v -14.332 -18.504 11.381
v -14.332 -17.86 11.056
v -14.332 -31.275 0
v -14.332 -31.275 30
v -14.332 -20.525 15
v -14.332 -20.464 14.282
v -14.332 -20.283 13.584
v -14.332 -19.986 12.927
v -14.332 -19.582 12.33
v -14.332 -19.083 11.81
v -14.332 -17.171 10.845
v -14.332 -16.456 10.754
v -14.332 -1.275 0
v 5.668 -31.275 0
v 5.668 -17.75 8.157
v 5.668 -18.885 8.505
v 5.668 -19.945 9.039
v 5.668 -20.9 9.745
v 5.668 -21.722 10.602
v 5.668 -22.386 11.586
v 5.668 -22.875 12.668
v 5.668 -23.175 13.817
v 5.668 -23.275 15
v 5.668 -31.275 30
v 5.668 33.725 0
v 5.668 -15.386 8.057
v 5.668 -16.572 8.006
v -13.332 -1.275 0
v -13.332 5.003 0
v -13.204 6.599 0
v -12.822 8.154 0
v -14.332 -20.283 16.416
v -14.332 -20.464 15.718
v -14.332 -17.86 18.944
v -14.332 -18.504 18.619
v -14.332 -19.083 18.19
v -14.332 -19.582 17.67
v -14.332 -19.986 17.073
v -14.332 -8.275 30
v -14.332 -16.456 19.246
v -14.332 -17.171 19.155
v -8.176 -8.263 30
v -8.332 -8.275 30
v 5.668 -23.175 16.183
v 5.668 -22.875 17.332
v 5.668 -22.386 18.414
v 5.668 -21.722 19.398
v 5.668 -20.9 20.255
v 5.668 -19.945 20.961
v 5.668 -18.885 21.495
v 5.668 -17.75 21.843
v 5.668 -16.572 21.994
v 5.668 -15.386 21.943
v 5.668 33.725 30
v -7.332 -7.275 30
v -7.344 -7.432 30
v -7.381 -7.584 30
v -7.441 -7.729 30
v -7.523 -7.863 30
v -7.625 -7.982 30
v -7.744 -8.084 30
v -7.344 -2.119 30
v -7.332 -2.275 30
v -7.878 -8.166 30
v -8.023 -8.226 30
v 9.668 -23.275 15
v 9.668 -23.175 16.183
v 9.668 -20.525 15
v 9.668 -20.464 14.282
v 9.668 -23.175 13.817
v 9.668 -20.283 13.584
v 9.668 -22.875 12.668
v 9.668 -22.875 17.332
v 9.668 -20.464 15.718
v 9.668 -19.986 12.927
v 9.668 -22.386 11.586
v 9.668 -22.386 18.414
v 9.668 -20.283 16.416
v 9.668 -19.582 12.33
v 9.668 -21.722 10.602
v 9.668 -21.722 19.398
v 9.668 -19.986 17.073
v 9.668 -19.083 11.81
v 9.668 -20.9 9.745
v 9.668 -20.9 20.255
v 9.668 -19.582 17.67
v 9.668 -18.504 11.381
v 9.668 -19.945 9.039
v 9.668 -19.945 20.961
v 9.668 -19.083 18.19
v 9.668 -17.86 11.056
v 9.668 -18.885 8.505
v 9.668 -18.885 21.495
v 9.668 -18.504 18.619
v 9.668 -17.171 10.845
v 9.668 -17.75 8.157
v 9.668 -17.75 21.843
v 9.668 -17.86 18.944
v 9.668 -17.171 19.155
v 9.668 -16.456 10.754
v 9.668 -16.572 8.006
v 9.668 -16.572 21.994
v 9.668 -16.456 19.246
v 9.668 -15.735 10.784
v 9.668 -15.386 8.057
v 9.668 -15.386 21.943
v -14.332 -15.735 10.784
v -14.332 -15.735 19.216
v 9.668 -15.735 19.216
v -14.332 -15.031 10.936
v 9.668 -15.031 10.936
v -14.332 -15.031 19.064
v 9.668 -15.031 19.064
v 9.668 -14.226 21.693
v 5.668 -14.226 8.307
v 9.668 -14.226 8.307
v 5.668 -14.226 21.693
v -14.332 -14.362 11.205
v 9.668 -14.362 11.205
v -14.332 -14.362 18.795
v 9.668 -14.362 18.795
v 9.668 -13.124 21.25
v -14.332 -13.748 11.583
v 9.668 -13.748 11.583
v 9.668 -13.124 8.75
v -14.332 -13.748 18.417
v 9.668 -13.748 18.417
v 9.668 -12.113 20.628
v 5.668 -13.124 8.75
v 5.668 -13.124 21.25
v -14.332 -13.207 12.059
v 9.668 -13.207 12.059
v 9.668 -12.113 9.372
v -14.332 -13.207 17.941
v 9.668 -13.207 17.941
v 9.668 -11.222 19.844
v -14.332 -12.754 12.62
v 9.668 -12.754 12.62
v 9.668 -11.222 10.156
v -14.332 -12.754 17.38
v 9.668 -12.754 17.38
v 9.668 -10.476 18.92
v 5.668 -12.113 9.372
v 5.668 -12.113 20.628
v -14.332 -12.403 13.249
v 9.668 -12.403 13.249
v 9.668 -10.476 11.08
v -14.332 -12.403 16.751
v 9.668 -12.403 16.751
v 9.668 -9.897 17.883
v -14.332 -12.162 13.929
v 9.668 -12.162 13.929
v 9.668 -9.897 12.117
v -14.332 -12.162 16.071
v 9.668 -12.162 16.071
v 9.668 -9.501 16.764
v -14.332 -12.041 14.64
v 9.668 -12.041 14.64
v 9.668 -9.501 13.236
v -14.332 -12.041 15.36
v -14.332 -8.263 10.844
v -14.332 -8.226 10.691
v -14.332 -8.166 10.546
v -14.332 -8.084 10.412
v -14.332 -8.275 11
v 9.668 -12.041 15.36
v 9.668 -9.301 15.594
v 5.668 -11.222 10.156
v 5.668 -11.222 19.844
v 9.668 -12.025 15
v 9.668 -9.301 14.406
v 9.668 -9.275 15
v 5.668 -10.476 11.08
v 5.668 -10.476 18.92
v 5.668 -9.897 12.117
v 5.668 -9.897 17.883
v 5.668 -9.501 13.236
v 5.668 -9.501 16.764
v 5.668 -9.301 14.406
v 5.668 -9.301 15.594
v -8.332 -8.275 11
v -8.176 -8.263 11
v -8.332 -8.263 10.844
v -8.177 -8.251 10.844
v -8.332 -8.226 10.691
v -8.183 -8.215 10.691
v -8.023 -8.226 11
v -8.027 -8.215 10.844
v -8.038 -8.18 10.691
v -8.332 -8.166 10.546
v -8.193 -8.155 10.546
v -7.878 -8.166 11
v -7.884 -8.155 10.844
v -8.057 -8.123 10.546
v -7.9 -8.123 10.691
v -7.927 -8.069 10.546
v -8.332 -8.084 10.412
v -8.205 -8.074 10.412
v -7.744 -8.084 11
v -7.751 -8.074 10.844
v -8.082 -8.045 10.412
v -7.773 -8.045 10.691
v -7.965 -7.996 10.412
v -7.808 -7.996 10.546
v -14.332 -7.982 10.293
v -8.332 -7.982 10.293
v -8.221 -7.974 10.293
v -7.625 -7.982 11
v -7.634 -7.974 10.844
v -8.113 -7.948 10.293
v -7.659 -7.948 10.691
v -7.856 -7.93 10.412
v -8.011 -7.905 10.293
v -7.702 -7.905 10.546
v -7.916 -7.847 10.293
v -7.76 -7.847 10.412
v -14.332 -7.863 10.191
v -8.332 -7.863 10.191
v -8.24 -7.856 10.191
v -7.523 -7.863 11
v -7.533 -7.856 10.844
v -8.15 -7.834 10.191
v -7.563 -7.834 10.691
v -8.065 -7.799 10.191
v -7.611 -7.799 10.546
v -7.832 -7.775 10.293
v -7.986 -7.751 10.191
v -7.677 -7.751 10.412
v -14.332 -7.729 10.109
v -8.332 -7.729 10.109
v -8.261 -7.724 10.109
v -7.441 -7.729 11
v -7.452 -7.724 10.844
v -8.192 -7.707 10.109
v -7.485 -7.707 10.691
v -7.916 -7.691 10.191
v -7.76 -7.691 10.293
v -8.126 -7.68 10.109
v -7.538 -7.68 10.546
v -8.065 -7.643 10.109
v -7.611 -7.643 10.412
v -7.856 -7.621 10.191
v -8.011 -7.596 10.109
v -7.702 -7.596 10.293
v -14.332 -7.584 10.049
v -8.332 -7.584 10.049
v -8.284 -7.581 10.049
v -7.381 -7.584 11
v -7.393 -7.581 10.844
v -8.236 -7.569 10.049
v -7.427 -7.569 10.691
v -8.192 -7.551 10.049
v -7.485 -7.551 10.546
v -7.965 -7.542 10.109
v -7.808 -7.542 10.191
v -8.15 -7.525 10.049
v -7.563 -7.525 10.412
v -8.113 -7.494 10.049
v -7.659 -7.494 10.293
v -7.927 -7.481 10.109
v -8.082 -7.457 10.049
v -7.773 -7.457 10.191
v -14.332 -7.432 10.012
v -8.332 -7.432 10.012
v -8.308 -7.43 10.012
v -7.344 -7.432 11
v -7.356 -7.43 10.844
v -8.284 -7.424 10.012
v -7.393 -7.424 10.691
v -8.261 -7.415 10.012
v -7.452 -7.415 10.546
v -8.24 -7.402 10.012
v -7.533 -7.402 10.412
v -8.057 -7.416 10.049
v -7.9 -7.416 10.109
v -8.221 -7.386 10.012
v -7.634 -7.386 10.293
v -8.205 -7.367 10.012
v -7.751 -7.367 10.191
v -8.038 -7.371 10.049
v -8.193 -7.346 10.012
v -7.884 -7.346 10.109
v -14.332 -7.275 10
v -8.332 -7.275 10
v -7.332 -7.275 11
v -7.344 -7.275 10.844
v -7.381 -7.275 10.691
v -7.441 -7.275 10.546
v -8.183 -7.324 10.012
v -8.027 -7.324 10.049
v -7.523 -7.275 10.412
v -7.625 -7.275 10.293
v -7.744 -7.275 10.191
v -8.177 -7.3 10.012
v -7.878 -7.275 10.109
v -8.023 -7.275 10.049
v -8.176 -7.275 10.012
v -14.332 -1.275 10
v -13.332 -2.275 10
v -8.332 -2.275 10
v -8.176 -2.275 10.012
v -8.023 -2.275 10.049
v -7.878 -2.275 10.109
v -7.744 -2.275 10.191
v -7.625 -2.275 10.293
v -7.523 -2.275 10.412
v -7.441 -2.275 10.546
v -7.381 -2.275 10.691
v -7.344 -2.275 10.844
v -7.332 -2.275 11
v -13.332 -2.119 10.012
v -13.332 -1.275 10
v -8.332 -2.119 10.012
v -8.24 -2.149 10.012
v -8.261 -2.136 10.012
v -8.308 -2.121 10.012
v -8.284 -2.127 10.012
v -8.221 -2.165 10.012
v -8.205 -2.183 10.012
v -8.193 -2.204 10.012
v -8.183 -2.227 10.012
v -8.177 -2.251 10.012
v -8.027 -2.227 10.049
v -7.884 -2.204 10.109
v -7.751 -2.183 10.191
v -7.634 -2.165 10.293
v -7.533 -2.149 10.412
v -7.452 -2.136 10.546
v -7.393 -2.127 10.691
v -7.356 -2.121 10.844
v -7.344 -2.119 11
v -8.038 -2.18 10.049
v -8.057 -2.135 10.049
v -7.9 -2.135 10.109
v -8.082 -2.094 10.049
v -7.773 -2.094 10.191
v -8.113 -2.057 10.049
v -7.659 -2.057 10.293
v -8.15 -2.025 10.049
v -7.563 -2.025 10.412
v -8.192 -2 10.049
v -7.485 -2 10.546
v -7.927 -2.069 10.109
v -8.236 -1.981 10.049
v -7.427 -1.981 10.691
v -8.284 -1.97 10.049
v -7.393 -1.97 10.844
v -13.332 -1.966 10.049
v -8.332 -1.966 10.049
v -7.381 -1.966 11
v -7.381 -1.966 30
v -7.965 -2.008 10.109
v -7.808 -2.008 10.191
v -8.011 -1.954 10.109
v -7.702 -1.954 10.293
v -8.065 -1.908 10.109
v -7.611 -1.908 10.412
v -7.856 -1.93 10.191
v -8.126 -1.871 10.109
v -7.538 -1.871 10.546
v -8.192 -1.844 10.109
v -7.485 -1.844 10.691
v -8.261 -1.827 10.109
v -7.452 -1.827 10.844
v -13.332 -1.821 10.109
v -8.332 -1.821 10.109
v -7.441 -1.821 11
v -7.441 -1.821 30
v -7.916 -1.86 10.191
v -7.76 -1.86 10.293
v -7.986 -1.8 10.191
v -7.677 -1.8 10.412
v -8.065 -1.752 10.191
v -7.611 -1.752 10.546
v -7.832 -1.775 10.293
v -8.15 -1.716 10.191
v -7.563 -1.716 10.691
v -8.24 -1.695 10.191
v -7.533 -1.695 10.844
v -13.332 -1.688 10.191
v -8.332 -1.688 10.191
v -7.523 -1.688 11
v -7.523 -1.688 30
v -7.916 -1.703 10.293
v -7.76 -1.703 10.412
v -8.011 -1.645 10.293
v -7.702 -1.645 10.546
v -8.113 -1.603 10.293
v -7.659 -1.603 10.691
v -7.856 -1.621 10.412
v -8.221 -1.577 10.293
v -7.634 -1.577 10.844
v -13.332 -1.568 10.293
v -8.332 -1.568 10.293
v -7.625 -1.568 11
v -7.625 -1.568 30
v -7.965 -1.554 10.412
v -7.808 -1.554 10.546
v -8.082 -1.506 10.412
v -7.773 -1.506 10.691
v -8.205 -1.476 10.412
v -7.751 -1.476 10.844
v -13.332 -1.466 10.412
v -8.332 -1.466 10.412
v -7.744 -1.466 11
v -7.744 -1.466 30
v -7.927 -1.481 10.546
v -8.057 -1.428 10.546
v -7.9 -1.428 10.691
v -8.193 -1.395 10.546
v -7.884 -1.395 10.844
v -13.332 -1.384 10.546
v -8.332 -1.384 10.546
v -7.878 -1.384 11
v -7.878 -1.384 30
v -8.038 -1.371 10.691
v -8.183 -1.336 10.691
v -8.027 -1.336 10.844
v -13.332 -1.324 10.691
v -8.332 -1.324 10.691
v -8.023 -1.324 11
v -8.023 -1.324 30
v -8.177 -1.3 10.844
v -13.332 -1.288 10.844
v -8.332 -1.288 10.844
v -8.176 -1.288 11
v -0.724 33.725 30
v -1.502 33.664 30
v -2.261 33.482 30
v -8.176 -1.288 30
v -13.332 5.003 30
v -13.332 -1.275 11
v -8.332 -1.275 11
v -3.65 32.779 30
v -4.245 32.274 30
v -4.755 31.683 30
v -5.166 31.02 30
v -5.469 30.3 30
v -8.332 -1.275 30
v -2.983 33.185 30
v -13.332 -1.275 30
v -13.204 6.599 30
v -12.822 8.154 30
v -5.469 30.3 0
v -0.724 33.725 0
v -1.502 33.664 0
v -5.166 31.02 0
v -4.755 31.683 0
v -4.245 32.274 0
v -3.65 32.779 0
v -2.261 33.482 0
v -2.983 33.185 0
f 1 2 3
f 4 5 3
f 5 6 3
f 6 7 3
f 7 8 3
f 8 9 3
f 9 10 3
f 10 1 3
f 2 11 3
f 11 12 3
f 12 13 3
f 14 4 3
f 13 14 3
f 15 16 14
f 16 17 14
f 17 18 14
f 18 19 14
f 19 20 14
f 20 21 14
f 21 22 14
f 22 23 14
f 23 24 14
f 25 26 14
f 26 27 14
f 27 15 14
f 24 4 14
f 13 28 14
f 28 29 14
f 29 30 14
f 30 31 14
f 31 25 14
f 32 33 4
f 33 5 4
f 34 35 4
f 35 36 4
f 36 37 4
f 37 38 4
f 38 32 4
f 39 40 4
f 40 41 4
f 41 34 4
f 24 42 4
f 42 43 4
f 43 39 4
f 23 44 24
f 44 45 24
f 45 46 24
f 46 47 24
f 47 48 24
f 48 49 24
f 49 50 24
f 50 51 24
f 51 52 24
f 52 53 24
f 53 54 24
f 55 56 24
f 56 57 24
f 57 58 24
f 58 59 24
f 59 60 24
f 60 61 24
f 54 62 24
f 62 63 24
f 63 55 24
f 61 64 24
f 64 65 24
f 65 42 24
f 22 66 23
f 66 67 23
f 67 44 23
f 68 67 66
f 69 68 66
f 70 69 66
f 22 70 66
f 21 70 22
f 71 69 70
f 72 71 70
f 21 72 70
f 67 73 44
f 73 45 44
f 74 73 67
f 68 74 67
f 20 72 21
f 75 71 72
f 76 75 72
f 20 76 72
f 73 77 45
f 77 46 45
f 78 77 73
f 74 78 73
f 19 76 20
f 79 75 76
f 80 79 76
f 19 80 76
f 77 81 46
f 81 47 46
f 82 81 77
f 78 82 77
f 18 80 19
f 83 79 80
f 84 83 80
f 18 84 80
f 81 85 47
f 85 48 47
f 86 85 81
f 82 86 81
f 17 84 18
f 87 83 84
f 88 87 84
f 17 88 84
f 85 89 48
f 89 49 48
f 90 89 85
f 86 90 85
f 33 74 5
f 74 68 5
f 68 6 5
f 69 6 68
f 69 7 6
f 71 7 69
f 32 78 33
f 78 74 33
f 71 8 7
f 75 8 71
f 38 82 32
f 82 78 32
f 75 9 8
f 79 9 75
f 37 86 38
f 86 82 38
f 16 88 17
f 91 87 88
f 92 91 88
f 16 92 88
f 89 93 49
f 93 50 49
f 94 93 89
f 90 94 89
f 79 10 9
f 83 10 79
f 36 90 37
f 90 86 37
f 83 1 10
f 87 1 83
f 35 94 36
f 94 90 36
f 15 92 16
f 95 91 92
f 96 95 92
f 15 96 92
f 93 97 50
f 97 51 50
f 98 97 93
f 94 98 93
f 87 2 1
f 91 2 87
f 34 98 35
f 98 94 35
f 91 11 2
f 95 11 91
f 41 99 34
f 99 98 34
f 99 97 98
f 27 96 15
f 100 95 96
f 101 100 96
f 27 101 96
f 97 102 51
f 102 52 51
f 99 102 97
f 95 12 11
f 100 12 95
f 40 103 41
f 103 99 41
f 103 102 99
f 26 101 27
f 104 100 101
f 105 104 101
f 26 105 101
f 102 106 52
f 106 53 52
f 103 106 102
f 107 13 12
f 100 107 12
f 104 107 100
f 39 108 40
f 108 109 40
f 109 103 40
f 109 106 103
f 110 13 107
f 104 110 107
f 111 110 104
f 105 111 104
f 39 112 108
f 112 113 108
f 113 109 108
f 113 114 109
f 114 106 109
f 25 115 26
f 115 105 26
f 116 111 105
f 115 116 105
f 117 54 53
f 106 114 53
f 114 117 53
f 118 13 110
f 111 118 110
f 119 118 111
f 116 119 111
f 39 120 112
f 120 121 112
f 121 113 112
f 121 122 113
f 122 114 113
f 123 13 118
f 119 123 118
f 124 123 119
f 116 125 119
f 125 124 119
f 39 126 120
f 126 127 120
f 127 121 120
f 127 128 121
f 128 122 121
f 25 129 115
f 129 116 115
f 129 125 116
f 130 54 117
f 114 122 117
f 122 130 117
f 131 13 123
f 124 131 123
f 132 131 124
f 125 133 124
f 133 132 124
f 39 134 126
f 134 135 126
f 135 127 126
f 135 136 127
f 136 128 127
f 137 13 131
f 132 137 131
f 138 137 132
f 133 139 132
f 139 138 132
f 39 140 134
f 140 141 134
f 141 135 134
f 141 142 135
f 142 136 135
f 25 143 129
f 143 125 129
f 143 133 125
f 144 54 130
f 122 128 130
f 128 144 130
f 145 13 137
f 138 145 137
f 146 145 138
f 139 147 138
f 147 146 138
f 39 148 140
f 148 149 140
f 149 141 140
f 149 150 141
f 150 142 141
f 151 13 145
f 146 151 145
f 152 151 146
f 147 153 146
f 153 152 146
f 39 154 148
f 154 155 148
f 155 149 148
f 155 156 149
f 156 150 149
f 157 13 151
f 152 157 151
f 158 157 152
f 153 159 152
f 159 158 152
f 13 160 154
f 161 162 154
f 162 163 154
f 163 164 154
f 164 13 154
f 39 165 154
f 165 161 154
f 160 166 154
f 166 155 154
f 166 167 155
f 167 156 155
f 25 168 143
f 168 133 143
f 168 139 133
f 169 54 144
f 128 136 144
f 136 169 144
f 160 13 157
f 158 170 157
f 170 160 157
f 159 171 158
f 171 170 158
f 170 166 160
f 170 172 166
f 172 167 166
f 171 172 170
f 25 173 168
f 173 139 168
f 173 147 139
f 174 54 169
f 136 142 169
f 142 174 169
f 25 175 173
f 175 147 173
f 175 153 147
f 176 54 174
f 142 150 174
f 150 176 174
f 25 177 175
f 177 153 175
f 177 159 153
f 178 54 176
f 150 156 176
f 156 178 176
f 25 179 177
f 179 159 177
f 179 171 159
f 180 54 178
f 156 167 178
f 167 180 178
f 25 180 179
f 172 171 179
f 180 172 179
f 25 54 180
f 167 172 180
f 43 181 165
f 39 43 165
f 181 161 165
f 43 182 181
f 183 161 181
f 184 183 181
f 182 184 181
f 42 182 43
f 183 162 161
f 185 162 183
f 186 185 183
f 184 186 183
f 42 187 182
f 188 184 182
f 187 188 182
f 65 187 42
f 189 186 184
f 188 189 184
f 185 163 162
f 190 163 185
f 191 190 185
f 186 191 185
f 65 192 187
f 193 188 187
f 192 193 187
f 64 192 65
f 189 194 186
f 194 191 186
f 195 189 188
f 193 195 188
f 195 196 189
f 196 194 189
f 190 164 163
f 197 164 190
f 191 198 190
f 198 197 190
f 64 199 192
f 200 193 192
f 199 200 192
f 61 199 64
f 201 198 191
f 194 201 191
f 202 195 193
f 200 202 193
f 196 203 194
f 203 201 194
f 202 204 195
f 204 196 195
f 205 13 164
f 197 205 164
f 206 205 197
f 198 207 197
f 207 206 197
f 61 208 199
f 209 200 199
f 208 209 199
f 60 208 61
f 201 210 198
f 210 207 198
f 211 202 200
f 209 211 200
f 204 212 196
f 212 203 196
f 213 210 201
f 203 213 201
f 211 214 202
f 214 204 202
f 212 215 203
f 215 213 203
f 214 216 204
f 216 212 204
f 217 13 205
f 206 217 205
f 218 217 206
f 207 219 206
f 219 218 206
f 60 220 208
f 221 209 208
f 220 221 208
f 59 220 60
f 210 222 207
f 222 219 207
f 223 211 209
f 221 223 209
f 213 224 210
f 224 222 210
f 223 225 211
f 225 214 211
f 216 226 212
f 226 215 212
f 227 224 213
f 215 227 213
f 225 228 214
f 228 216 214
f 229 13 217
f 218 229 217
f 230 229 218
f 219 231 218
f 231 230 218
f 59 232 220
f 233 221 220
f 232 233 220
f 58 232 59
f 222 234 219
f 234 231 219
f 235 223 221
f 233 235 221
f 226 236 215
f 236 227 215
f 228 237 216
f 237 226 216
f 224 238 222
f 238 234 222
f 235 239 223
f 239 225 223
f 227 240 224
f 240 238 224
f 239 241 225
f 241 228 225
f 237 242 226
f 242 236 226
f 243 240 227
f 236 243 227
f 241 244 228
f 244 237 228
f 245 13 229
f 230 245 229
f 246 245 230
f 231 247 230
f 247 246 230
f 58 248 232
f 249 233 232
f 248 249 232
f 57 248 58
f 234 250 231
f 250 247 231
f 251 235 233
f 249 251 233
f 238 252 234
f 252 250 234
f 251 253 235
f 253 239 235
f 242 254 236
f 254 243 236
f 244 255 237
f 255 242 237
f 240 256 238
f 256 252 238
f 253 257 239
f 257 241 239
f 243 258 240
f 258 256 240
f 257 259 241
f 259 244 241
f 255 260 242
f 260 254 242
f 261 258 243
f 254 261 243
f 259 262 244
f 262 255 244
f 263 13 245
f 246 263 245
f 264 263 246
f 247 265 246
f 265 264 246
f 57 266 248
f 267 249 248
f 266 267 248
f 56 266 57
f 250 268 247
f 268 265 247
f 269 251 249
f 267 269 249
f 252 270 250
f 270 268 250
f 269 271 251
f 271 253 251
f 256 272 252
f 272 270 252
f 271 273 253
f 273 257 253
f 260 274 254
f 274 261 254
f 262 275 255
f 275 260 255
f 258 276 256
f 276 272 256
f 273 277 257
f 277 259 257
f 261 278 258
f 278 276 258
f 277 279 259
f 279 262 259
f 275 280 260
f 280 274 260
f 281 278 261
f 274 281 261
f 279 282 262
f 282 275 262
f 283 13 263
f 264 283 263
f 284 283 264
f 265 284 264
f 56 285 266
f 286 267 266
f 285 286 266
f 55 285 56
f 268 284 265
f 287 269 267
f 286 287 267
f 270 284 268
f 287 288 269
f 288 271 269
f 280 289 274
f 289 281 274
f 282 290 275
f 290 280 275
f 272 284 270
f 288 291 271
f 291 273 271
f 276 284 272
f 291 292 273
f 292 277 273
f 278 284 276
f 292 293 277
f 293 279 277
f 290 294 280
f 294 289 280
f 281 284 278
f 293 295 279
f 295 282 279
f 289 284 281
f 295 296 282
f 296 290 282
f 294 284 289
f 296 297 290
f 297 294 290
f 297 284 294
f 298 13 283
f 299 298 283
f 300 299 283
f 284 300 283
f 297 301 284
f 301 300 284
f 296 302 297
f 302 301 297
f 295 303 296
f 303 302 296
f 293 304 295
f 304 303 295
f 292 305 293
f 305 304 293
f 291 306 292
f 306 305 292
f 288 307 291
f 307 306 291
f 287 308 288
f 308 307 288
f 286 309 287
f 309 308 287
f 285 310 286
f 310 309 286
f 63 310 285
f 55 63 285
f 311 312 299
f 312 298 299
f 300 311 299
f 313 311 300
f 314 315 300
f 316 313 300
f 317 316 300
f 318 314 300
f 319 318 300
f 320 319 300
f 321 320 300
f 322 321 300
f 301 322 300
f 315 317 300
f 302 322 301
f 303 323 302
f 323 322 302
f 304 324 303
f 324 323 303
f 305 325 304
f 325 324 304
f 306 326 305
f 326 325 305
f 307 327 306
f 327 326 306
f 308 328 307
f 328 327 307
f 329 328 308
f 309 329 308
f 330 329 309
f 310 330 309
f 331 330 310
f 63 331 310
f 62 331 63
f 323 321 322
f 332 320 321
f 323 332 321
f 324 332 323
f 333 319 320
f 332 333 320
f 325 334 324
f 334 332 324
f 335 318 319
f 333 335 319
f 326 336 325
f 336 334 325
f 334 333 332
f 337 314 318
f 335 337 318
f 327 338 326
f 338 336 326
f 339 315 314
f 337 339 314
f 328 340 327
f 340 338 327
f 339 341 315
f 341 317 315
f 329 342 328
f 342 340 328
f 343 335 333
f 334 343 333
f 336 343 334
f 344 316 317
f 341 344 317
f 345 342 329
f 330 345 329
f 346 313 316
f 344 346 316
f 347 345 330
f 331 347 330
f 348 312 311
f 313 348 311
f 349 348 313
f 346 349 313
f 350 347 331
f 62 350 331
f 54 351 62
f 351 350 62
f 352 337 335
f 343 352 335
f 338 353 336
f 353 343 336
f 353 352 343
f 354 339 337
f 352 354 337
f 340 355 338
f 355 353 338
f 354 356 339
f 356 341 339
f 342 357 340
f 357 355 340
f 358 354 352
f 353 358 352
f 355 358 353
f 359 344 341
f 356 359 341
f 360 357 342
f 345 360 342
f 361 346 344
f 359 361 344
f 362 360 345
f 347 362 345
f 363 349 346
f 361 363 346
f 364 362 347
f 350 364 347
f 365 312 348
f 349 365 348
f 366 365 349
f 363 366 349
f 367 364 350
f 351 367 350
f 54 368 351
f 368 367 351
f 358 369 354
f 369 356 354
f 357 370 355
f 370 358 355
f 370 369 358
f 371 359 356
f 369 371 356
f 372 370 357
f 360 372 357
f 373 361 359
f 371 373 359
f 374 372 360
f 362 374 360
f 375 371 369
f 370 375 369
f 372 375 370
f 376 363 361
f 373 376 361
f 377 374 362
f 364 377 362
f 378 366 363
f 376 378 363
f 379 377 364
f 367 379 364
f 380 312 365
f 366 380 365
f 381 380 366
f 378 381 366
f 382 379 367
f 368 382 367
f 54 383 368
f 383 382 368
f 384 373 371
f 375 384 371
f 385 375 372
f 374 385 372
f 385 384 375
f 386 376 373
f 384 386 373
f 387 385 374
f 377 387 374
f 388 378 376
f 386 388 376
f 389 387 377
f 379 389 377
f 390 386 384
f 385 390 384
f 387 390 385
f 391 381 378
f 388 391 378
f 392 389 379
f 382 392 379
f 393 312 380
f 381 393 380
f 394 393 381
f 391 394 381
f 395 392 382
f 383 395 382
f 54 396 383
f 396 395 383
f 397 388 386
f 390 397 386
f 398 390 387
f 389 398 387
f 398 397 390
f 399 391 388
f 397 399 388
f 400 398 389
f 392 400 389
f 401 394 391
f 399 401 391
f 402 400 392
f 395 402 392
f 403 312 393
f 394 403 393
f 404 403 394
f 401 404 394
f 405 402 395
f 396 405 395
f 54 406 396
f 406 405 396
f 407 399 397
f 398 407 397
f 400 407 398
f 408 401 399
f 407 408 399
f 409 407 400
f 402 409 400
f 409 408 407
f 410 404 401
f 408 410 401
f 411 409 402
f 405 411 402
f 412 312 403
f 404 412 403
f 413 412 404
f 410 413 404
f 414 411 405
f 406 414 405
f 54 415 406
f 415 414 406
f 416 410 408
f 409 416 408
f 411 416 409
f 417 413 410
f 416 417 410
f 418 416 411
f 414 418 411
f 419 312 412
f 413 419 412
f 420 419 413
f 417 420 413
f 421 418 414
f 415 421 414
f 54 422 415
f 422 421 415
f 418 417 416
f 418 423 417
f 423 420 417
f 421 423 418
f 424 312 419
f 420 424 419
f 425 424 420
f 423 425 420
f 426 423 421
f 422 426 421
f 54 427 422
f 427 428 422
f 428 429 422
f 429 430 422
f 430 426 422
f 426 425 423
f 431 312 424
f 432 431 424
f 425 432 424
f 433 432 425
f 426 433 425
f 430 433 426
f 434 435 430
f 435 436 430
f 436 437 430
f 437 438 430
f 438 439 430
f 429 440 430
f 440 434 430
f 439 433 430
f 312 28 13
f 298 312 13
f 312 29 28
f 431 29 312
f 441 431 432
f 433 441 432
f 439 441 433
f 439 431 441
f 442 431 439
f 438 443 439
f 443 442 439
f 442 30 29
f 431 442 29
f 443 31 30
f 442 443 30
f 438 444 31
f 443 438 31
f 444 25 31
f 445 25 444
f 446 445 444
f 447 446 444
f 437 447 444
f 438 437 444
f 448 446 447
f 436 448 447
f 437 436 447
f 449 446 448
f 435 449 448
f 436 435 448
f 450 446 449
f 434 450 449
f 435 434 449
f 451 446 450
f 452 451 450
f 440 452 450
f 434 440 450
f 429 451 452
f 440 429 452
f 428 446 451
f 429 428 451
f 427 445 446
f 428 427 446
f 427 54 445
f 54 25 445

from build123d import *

# Parameters (mm, degrees)
EXTRUDE_1_DEPTH     = 30
SKETCH_2_R          = 4.25
CUT_EXTRUDE_1_DEPTH = 30
FILLET_1_R          = 10
FILLET_2_R          = 5
SKETCH_5_W          = 7
SKETCH_5_H          = 7
CUT_EXTRUDE_2_DEPTH = 20
FILLET_5_R          = 1
SKETCH_6_R          = 7
SKETCH_6_R_2        = 4.25
EXTRUDE_2_DEPTH     = 4


with BuildPart() as part:
    # 草图1 → 凸台-拉伸1 (new body)
    with BuildSketch(Plane.XY):
        Polygon((-4.331983806, 33.724696356), (-13.331983806, 6.619433198), (-13.331983806, -1.275303644), (-14.331983806, -1.275303644), (-14.331983806, -31.275303644), (5.668016194, -31.275303644), (5.668016194, 33.724696356), align=None)
    extrude(amount=EXTRUDE_1_DEPTH)

    # 草图2 → 切除-拉伸1 (cut)
    with BuildSketch(Plane.ZY.offset(14.331983806)):
        with Locations(Location((15, -16.275303644, 0), (0, 0, 270))):
            Circle(SKETCH_2_R)
    extrude(amount=-CUT_EXTRUDE_1_DEPTH, mode=Mode.SUBTRACT)

    # 圆角1
    fillet_1_edges = [part.edges().sort_by_distance(p)[0] for p in [
        (-13.331983806, 6.619433198, 15),
    ]]
    fillet(fillet_1_edges, radius=FILLET_1_R)

    # 圆角2
    fillet_2_edges = [part.edges().sort_by_distance(p)[0] for p in [
        (-4.331983806, 33.724696356, 15),
    ]]
    fillet(fillet_2_edges, radius=FILLET_2_R)

    # 草图5 → 切除-拉伸2 (cut)
    with BuildSketch(Plane.XY.offset(30)):
        with Locations((-10.831983806, -4.775303644)):
            Rectangle(SKETCH_5_W, SKETCH_5_H)
    extrude(amount=-CUT_EXTRUDE_2_DEPTH, mode=Mode.SUBTRACT)

    # 圆角5
    fillet_5_edges = [part.edges().sort_by_distance(p)[0] for p in [
        (-10.331983806, -1.275303644, 10),
        (-7.331983806, -4.775303644, 10),
        (-7.331983806, -1.275303644, 20),
        (-10.831983806, -8.275303644, 10),
        (-7.331983806, -8.275303644, 20),
    ]]
    fillet(fillet_5_edges, radius=FILLET_5_R)

    # 草图6 → 凸台-拉伸2 (add)
    with BuildSketch(Plane(origin=(5.668016194, 0, 0), x_dir=(0, 0, -1), z_dir=(1, 0, 0))):
        with Locations(Location((-15, -16.275303644, 0), (0, 0, 270))):
            Circle(SKETCH_6_R)
        with Locations(Location((-15, -16.275303644, 0), (0, 0, 270))):
            Circle(SKETCH_6_R_2, mode=Mode.SUBTRACT)
    extrude(amount=EXTRUDE_2_DEPTH)


solid = part.part
